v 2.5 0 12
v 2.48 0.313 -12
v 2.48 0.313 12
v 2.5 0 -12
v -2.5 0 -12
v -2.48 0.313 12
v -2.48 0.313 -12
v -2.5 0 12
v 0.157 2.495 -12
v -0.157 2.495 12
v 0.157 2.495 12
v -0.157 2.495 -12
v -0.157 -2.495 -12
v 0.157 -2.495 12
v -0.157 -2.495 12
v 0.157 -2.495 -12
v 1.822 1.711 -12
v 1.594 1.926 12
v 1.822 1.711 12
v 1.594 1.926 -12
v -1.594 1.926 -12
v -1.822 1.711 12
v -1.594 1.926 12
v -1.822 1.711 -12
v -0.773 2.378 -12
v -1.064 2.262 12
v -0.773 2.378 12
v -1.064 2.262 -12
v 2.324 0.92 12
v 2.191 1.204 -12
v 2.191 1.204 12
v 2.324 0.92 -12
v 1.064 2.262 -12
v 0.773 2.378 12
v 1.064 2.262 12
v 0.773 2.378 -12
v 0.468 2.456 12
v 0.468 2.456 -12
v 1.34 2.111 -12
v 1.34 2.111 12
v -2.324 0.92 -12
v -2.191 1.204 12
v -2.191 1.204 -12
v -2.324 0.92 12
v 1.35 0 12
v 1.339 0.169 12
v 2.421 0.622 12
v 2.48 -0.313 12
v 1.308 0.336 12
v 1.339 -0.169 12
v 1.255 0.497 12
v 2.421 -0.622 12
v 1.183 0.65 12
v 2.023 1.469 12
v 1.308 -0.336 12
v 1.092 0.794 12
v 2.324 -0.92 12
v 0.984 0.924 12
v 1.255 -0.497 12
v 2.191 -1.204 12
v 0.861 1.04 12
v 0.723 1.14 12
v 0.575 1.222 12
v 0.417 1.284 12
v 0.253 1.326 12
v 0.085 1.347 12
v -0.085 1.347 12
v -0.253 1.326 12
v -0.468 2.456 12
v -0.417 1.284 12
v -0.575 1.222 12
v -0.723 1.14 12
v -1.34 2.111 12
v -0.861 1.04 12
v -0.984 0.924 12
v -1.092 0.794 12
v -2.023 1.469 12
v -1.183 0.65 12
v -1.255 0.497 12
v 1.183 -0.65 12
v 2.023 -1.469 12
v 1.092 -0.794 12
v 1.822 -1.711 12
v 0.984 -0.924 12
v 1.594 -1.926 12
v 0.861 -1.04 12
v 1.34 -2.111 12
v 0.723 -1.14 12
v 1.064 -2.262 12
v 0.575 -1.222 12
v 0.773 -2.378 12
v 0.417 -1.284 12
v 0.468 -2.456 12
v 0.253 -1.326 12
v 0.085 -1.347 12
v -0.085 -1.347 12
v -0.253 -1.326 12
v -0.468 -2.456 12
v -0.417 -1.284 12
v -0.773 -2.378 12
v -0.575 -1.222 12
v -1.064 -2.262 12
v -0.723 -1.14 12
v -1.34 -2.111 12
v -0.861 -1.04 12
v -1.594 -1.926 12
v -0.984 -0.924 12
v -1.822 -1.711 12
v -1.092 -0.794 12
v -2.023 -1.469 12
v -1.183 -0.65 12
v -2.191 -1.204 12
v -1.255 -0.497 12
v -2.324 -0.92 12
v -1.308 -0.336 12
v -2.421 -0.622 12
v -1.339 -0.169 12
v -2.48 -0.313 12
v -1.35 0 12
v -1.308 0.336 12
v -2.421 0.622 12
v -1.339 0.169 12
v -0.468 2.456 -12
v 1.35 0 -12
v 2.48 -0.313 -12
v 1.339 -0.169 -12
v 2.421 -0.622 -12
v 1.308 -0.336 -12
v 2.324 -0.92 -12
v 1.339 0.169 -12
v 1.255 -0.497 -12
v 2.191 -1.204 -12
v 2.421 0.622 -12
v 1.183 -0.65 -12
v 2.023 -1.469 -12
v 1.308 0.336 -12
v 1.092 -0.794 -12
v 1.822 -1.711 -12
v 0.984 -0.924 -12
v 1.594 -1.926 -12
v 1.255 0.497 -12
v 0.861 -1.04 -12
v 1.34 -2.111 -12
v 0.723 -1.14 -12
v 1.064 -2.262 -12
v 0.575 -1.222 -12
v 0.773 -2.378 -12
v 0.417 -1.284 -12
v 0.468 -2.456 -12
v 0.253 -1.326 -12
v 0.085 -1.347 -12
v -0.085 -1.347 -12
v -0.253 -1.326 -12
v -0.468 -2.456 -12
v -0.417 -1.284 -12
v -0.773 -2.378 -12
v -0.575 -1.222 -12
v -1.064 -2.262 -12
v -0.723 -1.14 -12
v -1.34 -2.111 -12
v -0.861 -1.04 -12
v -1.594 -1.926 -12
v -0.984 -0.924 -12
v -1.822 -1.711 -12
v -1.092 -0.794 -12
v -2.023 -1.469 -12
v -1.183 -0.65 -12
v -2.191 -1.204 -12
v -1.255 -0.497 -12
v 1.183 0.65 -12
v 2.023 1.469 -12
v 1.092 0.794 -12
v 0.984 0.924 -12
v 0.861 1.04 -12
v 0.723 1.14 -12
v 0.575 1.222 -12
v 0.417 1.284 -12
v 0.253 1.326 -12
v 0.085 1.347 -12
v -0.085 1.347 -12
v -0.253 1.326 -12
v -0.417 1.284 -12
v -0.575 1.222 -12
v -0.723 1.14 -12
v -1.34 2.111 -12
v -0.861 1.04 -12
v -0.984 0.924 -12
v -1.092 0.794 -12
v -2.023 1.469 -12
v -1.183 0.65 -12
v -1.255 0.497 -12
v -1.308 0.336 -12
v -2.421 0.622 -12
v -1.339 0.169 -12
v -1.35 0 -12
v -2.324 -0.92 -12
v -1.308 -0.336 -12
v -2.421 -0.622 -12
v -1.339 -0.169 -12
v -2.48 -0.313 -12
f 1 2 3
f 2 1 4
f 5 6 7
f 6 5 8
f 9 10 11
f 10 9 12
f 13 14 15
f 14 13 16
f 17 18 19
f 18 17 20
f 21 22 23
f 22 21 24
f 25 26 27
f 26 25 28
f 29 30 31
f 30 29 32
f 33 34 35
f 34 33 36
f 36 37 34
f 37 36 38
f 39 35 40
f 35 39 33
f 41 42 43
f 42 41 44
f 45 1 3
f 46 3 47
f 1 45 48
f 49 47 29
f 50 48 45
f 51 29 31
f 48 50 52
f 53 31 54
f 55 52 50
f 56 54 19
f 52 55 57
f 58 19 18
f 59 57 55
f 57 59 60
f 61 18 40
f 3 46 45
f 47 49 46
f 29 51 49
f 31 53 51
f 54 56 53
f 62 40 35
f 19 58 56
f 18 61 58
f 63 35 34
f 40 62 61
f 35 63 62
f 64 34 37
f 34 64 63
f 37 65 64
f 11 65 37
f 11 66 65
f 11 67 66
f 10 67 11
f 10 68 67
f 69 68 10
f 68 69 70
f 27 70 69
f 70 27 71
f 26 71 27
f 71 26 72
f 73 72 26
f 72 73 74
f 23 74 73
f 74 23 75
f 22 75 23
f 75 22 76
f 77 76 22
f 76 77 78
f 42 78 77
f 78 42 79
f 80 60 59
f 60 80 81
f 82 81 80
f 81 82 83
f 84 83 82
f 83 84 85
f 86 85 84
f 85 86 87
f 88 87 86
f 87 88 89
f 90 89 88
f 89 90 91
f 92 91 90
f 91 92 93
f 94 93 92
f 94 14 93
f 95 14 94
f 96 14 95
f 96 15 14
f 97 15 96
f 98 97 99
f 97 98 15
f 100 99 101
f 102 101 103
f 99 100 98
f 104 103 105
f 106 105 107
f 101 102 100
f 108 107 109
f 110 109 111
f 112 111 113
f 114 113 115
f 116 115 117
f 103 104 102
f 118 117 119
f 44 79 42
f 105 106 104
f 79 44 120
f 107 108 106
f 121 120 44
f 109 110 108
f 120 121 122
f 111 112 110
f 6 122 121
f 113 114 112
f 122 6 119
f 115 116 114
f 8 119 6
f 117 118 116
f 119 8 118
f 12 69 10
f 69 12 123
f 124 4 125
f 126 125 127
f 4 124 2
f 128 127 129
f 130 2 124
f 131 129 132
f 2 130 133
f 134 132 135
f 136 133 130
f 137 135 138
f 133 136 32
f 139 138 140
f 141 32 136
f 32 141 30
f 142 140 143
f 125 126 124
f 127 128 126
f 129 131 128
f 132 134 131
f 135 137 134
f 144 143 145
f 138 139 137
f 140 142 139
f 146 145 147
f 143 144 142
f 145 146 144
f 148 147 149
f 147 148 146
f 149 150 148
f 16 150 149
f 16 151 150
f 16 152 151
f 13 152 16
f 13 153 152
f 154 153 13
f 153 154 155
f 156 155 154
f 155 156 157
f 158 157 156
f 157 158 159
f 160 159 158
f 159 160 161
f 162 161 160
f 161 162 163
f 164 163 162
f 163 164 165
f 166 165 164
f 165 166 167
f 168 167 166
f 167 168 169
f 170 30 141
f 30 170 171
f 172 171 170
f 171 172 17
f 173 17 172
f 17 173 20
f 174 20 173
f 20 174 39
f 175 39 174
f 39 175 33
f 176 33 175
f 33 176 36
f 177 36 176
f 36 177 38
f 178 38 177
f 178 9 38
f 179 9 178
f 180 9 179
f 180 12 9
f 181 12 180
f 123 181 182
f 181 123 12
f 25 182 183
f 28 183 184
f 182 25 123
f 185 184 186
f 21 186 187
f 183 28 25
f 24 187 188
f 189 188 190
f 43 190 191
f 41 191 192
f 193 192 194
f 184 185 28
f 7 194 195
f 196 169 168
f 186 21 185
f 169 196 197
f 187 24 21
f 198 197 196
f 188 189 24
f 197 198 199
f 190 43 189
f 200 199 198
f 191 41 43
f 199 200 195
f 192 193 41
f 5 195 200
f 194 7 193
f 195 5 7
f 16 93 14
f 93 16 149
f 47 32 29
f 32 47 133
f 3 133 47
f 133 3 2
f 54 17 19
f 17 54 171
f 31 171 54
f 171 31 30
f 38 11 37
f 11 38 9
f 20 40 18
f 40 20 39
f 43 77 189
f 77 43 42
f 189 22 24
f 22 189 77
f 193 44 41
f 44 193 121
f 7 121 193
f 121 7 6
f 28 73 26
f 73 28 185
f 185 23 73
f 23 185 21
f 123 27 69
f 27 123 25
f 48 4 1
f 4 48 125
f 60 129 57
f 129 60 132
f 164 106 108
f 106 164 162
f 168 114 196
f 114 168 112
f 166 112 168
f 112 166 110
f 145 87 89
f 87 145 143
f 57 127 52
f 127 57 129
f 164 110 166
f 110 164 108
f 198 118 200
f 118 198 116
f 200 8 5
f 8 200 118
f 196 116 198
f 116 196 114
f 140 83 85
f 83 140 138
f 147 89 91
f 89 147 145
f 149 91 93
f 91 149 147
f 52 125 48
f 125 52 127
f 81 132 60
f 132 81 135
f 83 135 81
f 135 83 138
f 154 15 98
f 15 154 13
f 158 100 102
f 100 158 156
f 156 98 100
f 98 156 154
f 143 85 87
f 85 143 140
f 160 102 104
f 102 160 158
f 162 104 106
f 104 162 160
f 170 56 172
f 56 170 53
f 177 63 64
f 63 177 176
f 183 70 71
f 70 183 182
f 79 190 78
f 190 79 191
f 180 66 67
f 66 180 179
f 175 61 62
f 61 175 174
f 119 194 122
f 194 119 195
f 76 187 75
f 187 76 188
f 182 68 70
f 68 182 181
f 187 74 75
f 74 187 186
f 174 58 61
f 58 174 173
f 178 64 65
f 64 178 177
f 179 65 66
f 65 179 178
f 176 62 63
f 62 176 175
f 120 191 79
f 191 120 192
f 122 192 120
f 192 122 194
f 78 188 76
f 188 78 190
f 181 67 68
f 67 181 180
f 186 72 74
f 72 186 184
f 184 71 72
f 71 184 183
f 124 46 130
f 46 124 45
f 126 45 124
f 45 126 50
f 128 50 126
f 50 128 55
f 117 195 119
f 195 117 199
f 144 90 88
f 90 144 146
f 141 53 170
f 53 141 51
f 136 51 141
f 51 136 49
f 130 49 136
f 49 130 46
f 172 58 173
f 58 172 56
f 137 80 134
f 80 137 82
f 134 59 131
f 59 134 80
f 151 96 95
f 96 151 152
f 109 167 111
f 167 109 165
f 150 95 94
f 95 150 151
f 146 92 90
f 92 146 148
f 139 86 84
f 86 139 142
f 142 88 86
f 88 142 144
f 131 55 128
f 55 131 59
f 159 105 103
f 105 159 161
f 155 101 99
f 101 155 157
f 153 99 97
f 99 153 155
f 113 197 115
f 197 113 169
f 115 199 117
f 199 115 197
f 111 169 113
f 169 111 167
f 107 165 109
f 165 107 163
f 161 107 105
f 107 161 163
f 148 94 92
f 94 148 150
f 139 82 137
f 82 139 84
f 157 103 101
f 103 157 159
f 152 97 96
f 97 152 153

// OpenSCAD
$fn = 50;


difference() {
	union() {
		translate(v = [0, 0, -12.0000000000]) {
			cylinder(h = 24, r = 2.5000000000);
		}
	}
	union() {
		translate(v = [0, 0, -100.0000000000]) {
			cylinder(h = 200, r = 1.3500000000);
		}
	}
}
